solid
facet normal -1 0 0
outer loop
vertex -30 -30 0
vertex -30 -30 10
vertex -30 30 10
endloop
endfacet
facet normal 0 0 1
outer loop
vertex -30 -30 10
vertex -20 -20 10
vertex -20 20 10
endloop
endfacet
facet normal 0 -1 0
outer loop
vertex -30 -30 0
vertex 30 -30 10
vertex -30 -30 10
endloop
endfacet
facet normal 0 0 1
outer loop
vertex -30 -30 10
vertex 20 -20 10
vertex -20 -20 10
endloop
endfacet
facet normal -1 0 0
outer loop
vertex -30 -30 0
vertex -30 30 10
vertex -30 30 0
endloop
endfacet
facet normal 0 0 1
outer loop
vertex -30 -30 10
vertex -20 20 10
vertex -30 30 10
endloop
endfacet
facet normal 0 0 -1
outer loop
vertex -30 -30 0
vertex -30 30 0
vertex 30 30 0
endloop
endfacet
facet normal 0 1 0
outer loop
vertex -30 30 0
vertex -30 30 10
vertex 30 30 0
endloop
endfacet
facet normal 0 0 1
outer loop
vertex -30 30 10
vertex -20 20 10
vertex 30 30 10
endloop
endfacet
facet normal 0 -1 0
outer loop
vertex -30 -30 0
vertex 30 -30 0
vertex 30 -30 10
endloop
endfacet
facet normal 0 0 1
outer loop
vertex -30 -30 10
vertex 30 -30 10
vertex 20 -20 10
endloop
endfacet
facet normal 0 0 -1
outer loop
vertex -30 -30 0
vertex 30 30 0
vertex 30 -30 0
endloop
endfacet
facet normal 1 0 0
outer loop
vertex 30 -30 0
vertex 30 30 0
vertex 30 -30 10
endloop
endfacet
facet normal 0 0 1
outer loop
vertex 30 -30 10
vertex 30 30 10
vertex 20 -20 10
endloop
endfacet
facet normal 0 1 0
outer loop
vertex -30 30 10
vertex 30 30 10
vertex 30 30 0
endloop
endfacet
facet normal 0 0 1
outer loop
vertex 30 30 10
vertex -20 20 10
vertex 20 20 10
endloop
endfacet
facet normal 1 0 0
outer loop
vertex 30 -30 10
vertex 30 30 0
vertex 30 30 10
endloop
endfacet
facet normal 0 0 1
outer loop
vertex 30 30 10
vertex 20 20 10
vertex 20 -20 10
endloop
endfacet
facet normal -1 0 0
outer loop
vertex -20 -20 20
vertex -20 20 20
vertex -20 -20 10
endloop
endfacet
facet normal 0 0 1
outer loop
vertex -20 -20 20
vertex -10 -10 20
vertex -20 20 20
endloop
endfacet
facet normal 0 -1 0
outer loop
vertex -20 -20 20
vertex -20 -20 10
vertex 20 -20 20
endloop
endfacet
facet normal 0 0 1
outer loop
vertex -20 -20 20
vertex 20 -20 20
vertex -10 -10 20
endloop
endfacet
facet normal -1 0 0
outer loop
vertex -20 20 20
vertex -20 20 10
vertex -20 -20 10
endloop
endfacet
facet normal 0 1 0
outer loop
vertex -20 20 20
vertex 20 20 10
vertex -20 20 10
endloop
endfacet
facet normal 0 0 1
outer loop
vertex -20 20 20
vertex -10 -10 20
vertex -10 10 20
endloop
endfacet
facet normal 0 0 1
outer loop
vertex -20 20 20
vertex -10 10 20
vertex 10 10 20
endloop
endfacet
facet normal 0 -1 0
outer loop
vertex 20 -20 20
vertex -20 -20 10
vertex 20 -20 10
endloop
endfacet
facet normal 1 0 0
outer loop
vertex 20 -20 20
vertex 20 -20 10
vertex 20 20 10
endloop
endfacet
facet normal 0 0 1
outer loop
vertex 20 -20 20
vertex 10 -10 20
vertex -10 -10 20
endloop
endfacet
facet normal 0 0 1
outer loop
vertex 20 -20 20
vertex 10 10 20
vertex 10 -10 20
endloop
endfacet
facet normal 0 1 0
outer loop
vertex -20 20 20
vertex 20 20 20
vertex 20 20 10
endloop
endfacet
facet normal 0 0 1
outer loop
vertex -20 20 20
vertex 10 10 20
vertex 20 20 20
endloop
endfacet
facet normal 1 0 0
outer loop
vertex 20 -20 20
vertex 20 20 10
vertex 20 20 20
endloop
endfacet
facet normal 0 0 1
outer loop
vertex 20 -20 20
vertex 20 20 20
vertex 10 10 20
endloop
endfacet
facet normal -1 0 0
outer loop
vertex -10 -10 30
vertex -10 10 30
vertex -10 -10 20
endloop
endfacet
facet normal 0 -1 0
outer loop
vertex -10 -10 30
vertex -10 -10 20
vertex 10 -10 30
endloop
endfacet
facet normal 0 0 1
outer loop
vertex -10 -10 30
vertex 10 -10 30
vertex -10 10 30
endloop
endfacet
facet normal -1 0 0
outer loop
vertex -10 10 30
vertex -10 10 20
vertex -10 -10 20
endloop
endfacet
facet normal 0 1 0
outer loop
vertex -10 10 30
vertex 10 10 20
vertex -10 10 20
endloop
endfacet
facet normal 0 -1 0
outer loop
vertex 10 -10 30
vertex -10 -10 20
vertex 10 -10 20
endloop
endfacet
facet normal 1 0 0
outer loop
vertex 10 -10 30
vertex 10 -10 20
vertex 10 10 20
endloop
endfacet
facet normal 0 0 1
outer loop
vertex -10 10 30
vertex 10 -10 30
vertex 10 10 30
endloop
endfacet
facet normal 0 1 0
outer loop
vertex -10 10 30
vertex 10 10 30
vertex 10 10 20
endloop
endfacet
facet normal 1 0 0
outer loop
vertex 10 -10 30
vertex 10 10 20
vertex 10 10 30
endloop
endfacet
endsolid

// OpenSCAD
// 1段目（底面）
translate([0, 0, 5])
    cube([60, 60, 10], center = true);

// 2段目（中間）
translate([0, 0, 15])
    cube([40, 40, 10], center = true);

// 3段目（最上部）
translate([0, 0, 25])
    cube([20, 20, 10], center = true);
